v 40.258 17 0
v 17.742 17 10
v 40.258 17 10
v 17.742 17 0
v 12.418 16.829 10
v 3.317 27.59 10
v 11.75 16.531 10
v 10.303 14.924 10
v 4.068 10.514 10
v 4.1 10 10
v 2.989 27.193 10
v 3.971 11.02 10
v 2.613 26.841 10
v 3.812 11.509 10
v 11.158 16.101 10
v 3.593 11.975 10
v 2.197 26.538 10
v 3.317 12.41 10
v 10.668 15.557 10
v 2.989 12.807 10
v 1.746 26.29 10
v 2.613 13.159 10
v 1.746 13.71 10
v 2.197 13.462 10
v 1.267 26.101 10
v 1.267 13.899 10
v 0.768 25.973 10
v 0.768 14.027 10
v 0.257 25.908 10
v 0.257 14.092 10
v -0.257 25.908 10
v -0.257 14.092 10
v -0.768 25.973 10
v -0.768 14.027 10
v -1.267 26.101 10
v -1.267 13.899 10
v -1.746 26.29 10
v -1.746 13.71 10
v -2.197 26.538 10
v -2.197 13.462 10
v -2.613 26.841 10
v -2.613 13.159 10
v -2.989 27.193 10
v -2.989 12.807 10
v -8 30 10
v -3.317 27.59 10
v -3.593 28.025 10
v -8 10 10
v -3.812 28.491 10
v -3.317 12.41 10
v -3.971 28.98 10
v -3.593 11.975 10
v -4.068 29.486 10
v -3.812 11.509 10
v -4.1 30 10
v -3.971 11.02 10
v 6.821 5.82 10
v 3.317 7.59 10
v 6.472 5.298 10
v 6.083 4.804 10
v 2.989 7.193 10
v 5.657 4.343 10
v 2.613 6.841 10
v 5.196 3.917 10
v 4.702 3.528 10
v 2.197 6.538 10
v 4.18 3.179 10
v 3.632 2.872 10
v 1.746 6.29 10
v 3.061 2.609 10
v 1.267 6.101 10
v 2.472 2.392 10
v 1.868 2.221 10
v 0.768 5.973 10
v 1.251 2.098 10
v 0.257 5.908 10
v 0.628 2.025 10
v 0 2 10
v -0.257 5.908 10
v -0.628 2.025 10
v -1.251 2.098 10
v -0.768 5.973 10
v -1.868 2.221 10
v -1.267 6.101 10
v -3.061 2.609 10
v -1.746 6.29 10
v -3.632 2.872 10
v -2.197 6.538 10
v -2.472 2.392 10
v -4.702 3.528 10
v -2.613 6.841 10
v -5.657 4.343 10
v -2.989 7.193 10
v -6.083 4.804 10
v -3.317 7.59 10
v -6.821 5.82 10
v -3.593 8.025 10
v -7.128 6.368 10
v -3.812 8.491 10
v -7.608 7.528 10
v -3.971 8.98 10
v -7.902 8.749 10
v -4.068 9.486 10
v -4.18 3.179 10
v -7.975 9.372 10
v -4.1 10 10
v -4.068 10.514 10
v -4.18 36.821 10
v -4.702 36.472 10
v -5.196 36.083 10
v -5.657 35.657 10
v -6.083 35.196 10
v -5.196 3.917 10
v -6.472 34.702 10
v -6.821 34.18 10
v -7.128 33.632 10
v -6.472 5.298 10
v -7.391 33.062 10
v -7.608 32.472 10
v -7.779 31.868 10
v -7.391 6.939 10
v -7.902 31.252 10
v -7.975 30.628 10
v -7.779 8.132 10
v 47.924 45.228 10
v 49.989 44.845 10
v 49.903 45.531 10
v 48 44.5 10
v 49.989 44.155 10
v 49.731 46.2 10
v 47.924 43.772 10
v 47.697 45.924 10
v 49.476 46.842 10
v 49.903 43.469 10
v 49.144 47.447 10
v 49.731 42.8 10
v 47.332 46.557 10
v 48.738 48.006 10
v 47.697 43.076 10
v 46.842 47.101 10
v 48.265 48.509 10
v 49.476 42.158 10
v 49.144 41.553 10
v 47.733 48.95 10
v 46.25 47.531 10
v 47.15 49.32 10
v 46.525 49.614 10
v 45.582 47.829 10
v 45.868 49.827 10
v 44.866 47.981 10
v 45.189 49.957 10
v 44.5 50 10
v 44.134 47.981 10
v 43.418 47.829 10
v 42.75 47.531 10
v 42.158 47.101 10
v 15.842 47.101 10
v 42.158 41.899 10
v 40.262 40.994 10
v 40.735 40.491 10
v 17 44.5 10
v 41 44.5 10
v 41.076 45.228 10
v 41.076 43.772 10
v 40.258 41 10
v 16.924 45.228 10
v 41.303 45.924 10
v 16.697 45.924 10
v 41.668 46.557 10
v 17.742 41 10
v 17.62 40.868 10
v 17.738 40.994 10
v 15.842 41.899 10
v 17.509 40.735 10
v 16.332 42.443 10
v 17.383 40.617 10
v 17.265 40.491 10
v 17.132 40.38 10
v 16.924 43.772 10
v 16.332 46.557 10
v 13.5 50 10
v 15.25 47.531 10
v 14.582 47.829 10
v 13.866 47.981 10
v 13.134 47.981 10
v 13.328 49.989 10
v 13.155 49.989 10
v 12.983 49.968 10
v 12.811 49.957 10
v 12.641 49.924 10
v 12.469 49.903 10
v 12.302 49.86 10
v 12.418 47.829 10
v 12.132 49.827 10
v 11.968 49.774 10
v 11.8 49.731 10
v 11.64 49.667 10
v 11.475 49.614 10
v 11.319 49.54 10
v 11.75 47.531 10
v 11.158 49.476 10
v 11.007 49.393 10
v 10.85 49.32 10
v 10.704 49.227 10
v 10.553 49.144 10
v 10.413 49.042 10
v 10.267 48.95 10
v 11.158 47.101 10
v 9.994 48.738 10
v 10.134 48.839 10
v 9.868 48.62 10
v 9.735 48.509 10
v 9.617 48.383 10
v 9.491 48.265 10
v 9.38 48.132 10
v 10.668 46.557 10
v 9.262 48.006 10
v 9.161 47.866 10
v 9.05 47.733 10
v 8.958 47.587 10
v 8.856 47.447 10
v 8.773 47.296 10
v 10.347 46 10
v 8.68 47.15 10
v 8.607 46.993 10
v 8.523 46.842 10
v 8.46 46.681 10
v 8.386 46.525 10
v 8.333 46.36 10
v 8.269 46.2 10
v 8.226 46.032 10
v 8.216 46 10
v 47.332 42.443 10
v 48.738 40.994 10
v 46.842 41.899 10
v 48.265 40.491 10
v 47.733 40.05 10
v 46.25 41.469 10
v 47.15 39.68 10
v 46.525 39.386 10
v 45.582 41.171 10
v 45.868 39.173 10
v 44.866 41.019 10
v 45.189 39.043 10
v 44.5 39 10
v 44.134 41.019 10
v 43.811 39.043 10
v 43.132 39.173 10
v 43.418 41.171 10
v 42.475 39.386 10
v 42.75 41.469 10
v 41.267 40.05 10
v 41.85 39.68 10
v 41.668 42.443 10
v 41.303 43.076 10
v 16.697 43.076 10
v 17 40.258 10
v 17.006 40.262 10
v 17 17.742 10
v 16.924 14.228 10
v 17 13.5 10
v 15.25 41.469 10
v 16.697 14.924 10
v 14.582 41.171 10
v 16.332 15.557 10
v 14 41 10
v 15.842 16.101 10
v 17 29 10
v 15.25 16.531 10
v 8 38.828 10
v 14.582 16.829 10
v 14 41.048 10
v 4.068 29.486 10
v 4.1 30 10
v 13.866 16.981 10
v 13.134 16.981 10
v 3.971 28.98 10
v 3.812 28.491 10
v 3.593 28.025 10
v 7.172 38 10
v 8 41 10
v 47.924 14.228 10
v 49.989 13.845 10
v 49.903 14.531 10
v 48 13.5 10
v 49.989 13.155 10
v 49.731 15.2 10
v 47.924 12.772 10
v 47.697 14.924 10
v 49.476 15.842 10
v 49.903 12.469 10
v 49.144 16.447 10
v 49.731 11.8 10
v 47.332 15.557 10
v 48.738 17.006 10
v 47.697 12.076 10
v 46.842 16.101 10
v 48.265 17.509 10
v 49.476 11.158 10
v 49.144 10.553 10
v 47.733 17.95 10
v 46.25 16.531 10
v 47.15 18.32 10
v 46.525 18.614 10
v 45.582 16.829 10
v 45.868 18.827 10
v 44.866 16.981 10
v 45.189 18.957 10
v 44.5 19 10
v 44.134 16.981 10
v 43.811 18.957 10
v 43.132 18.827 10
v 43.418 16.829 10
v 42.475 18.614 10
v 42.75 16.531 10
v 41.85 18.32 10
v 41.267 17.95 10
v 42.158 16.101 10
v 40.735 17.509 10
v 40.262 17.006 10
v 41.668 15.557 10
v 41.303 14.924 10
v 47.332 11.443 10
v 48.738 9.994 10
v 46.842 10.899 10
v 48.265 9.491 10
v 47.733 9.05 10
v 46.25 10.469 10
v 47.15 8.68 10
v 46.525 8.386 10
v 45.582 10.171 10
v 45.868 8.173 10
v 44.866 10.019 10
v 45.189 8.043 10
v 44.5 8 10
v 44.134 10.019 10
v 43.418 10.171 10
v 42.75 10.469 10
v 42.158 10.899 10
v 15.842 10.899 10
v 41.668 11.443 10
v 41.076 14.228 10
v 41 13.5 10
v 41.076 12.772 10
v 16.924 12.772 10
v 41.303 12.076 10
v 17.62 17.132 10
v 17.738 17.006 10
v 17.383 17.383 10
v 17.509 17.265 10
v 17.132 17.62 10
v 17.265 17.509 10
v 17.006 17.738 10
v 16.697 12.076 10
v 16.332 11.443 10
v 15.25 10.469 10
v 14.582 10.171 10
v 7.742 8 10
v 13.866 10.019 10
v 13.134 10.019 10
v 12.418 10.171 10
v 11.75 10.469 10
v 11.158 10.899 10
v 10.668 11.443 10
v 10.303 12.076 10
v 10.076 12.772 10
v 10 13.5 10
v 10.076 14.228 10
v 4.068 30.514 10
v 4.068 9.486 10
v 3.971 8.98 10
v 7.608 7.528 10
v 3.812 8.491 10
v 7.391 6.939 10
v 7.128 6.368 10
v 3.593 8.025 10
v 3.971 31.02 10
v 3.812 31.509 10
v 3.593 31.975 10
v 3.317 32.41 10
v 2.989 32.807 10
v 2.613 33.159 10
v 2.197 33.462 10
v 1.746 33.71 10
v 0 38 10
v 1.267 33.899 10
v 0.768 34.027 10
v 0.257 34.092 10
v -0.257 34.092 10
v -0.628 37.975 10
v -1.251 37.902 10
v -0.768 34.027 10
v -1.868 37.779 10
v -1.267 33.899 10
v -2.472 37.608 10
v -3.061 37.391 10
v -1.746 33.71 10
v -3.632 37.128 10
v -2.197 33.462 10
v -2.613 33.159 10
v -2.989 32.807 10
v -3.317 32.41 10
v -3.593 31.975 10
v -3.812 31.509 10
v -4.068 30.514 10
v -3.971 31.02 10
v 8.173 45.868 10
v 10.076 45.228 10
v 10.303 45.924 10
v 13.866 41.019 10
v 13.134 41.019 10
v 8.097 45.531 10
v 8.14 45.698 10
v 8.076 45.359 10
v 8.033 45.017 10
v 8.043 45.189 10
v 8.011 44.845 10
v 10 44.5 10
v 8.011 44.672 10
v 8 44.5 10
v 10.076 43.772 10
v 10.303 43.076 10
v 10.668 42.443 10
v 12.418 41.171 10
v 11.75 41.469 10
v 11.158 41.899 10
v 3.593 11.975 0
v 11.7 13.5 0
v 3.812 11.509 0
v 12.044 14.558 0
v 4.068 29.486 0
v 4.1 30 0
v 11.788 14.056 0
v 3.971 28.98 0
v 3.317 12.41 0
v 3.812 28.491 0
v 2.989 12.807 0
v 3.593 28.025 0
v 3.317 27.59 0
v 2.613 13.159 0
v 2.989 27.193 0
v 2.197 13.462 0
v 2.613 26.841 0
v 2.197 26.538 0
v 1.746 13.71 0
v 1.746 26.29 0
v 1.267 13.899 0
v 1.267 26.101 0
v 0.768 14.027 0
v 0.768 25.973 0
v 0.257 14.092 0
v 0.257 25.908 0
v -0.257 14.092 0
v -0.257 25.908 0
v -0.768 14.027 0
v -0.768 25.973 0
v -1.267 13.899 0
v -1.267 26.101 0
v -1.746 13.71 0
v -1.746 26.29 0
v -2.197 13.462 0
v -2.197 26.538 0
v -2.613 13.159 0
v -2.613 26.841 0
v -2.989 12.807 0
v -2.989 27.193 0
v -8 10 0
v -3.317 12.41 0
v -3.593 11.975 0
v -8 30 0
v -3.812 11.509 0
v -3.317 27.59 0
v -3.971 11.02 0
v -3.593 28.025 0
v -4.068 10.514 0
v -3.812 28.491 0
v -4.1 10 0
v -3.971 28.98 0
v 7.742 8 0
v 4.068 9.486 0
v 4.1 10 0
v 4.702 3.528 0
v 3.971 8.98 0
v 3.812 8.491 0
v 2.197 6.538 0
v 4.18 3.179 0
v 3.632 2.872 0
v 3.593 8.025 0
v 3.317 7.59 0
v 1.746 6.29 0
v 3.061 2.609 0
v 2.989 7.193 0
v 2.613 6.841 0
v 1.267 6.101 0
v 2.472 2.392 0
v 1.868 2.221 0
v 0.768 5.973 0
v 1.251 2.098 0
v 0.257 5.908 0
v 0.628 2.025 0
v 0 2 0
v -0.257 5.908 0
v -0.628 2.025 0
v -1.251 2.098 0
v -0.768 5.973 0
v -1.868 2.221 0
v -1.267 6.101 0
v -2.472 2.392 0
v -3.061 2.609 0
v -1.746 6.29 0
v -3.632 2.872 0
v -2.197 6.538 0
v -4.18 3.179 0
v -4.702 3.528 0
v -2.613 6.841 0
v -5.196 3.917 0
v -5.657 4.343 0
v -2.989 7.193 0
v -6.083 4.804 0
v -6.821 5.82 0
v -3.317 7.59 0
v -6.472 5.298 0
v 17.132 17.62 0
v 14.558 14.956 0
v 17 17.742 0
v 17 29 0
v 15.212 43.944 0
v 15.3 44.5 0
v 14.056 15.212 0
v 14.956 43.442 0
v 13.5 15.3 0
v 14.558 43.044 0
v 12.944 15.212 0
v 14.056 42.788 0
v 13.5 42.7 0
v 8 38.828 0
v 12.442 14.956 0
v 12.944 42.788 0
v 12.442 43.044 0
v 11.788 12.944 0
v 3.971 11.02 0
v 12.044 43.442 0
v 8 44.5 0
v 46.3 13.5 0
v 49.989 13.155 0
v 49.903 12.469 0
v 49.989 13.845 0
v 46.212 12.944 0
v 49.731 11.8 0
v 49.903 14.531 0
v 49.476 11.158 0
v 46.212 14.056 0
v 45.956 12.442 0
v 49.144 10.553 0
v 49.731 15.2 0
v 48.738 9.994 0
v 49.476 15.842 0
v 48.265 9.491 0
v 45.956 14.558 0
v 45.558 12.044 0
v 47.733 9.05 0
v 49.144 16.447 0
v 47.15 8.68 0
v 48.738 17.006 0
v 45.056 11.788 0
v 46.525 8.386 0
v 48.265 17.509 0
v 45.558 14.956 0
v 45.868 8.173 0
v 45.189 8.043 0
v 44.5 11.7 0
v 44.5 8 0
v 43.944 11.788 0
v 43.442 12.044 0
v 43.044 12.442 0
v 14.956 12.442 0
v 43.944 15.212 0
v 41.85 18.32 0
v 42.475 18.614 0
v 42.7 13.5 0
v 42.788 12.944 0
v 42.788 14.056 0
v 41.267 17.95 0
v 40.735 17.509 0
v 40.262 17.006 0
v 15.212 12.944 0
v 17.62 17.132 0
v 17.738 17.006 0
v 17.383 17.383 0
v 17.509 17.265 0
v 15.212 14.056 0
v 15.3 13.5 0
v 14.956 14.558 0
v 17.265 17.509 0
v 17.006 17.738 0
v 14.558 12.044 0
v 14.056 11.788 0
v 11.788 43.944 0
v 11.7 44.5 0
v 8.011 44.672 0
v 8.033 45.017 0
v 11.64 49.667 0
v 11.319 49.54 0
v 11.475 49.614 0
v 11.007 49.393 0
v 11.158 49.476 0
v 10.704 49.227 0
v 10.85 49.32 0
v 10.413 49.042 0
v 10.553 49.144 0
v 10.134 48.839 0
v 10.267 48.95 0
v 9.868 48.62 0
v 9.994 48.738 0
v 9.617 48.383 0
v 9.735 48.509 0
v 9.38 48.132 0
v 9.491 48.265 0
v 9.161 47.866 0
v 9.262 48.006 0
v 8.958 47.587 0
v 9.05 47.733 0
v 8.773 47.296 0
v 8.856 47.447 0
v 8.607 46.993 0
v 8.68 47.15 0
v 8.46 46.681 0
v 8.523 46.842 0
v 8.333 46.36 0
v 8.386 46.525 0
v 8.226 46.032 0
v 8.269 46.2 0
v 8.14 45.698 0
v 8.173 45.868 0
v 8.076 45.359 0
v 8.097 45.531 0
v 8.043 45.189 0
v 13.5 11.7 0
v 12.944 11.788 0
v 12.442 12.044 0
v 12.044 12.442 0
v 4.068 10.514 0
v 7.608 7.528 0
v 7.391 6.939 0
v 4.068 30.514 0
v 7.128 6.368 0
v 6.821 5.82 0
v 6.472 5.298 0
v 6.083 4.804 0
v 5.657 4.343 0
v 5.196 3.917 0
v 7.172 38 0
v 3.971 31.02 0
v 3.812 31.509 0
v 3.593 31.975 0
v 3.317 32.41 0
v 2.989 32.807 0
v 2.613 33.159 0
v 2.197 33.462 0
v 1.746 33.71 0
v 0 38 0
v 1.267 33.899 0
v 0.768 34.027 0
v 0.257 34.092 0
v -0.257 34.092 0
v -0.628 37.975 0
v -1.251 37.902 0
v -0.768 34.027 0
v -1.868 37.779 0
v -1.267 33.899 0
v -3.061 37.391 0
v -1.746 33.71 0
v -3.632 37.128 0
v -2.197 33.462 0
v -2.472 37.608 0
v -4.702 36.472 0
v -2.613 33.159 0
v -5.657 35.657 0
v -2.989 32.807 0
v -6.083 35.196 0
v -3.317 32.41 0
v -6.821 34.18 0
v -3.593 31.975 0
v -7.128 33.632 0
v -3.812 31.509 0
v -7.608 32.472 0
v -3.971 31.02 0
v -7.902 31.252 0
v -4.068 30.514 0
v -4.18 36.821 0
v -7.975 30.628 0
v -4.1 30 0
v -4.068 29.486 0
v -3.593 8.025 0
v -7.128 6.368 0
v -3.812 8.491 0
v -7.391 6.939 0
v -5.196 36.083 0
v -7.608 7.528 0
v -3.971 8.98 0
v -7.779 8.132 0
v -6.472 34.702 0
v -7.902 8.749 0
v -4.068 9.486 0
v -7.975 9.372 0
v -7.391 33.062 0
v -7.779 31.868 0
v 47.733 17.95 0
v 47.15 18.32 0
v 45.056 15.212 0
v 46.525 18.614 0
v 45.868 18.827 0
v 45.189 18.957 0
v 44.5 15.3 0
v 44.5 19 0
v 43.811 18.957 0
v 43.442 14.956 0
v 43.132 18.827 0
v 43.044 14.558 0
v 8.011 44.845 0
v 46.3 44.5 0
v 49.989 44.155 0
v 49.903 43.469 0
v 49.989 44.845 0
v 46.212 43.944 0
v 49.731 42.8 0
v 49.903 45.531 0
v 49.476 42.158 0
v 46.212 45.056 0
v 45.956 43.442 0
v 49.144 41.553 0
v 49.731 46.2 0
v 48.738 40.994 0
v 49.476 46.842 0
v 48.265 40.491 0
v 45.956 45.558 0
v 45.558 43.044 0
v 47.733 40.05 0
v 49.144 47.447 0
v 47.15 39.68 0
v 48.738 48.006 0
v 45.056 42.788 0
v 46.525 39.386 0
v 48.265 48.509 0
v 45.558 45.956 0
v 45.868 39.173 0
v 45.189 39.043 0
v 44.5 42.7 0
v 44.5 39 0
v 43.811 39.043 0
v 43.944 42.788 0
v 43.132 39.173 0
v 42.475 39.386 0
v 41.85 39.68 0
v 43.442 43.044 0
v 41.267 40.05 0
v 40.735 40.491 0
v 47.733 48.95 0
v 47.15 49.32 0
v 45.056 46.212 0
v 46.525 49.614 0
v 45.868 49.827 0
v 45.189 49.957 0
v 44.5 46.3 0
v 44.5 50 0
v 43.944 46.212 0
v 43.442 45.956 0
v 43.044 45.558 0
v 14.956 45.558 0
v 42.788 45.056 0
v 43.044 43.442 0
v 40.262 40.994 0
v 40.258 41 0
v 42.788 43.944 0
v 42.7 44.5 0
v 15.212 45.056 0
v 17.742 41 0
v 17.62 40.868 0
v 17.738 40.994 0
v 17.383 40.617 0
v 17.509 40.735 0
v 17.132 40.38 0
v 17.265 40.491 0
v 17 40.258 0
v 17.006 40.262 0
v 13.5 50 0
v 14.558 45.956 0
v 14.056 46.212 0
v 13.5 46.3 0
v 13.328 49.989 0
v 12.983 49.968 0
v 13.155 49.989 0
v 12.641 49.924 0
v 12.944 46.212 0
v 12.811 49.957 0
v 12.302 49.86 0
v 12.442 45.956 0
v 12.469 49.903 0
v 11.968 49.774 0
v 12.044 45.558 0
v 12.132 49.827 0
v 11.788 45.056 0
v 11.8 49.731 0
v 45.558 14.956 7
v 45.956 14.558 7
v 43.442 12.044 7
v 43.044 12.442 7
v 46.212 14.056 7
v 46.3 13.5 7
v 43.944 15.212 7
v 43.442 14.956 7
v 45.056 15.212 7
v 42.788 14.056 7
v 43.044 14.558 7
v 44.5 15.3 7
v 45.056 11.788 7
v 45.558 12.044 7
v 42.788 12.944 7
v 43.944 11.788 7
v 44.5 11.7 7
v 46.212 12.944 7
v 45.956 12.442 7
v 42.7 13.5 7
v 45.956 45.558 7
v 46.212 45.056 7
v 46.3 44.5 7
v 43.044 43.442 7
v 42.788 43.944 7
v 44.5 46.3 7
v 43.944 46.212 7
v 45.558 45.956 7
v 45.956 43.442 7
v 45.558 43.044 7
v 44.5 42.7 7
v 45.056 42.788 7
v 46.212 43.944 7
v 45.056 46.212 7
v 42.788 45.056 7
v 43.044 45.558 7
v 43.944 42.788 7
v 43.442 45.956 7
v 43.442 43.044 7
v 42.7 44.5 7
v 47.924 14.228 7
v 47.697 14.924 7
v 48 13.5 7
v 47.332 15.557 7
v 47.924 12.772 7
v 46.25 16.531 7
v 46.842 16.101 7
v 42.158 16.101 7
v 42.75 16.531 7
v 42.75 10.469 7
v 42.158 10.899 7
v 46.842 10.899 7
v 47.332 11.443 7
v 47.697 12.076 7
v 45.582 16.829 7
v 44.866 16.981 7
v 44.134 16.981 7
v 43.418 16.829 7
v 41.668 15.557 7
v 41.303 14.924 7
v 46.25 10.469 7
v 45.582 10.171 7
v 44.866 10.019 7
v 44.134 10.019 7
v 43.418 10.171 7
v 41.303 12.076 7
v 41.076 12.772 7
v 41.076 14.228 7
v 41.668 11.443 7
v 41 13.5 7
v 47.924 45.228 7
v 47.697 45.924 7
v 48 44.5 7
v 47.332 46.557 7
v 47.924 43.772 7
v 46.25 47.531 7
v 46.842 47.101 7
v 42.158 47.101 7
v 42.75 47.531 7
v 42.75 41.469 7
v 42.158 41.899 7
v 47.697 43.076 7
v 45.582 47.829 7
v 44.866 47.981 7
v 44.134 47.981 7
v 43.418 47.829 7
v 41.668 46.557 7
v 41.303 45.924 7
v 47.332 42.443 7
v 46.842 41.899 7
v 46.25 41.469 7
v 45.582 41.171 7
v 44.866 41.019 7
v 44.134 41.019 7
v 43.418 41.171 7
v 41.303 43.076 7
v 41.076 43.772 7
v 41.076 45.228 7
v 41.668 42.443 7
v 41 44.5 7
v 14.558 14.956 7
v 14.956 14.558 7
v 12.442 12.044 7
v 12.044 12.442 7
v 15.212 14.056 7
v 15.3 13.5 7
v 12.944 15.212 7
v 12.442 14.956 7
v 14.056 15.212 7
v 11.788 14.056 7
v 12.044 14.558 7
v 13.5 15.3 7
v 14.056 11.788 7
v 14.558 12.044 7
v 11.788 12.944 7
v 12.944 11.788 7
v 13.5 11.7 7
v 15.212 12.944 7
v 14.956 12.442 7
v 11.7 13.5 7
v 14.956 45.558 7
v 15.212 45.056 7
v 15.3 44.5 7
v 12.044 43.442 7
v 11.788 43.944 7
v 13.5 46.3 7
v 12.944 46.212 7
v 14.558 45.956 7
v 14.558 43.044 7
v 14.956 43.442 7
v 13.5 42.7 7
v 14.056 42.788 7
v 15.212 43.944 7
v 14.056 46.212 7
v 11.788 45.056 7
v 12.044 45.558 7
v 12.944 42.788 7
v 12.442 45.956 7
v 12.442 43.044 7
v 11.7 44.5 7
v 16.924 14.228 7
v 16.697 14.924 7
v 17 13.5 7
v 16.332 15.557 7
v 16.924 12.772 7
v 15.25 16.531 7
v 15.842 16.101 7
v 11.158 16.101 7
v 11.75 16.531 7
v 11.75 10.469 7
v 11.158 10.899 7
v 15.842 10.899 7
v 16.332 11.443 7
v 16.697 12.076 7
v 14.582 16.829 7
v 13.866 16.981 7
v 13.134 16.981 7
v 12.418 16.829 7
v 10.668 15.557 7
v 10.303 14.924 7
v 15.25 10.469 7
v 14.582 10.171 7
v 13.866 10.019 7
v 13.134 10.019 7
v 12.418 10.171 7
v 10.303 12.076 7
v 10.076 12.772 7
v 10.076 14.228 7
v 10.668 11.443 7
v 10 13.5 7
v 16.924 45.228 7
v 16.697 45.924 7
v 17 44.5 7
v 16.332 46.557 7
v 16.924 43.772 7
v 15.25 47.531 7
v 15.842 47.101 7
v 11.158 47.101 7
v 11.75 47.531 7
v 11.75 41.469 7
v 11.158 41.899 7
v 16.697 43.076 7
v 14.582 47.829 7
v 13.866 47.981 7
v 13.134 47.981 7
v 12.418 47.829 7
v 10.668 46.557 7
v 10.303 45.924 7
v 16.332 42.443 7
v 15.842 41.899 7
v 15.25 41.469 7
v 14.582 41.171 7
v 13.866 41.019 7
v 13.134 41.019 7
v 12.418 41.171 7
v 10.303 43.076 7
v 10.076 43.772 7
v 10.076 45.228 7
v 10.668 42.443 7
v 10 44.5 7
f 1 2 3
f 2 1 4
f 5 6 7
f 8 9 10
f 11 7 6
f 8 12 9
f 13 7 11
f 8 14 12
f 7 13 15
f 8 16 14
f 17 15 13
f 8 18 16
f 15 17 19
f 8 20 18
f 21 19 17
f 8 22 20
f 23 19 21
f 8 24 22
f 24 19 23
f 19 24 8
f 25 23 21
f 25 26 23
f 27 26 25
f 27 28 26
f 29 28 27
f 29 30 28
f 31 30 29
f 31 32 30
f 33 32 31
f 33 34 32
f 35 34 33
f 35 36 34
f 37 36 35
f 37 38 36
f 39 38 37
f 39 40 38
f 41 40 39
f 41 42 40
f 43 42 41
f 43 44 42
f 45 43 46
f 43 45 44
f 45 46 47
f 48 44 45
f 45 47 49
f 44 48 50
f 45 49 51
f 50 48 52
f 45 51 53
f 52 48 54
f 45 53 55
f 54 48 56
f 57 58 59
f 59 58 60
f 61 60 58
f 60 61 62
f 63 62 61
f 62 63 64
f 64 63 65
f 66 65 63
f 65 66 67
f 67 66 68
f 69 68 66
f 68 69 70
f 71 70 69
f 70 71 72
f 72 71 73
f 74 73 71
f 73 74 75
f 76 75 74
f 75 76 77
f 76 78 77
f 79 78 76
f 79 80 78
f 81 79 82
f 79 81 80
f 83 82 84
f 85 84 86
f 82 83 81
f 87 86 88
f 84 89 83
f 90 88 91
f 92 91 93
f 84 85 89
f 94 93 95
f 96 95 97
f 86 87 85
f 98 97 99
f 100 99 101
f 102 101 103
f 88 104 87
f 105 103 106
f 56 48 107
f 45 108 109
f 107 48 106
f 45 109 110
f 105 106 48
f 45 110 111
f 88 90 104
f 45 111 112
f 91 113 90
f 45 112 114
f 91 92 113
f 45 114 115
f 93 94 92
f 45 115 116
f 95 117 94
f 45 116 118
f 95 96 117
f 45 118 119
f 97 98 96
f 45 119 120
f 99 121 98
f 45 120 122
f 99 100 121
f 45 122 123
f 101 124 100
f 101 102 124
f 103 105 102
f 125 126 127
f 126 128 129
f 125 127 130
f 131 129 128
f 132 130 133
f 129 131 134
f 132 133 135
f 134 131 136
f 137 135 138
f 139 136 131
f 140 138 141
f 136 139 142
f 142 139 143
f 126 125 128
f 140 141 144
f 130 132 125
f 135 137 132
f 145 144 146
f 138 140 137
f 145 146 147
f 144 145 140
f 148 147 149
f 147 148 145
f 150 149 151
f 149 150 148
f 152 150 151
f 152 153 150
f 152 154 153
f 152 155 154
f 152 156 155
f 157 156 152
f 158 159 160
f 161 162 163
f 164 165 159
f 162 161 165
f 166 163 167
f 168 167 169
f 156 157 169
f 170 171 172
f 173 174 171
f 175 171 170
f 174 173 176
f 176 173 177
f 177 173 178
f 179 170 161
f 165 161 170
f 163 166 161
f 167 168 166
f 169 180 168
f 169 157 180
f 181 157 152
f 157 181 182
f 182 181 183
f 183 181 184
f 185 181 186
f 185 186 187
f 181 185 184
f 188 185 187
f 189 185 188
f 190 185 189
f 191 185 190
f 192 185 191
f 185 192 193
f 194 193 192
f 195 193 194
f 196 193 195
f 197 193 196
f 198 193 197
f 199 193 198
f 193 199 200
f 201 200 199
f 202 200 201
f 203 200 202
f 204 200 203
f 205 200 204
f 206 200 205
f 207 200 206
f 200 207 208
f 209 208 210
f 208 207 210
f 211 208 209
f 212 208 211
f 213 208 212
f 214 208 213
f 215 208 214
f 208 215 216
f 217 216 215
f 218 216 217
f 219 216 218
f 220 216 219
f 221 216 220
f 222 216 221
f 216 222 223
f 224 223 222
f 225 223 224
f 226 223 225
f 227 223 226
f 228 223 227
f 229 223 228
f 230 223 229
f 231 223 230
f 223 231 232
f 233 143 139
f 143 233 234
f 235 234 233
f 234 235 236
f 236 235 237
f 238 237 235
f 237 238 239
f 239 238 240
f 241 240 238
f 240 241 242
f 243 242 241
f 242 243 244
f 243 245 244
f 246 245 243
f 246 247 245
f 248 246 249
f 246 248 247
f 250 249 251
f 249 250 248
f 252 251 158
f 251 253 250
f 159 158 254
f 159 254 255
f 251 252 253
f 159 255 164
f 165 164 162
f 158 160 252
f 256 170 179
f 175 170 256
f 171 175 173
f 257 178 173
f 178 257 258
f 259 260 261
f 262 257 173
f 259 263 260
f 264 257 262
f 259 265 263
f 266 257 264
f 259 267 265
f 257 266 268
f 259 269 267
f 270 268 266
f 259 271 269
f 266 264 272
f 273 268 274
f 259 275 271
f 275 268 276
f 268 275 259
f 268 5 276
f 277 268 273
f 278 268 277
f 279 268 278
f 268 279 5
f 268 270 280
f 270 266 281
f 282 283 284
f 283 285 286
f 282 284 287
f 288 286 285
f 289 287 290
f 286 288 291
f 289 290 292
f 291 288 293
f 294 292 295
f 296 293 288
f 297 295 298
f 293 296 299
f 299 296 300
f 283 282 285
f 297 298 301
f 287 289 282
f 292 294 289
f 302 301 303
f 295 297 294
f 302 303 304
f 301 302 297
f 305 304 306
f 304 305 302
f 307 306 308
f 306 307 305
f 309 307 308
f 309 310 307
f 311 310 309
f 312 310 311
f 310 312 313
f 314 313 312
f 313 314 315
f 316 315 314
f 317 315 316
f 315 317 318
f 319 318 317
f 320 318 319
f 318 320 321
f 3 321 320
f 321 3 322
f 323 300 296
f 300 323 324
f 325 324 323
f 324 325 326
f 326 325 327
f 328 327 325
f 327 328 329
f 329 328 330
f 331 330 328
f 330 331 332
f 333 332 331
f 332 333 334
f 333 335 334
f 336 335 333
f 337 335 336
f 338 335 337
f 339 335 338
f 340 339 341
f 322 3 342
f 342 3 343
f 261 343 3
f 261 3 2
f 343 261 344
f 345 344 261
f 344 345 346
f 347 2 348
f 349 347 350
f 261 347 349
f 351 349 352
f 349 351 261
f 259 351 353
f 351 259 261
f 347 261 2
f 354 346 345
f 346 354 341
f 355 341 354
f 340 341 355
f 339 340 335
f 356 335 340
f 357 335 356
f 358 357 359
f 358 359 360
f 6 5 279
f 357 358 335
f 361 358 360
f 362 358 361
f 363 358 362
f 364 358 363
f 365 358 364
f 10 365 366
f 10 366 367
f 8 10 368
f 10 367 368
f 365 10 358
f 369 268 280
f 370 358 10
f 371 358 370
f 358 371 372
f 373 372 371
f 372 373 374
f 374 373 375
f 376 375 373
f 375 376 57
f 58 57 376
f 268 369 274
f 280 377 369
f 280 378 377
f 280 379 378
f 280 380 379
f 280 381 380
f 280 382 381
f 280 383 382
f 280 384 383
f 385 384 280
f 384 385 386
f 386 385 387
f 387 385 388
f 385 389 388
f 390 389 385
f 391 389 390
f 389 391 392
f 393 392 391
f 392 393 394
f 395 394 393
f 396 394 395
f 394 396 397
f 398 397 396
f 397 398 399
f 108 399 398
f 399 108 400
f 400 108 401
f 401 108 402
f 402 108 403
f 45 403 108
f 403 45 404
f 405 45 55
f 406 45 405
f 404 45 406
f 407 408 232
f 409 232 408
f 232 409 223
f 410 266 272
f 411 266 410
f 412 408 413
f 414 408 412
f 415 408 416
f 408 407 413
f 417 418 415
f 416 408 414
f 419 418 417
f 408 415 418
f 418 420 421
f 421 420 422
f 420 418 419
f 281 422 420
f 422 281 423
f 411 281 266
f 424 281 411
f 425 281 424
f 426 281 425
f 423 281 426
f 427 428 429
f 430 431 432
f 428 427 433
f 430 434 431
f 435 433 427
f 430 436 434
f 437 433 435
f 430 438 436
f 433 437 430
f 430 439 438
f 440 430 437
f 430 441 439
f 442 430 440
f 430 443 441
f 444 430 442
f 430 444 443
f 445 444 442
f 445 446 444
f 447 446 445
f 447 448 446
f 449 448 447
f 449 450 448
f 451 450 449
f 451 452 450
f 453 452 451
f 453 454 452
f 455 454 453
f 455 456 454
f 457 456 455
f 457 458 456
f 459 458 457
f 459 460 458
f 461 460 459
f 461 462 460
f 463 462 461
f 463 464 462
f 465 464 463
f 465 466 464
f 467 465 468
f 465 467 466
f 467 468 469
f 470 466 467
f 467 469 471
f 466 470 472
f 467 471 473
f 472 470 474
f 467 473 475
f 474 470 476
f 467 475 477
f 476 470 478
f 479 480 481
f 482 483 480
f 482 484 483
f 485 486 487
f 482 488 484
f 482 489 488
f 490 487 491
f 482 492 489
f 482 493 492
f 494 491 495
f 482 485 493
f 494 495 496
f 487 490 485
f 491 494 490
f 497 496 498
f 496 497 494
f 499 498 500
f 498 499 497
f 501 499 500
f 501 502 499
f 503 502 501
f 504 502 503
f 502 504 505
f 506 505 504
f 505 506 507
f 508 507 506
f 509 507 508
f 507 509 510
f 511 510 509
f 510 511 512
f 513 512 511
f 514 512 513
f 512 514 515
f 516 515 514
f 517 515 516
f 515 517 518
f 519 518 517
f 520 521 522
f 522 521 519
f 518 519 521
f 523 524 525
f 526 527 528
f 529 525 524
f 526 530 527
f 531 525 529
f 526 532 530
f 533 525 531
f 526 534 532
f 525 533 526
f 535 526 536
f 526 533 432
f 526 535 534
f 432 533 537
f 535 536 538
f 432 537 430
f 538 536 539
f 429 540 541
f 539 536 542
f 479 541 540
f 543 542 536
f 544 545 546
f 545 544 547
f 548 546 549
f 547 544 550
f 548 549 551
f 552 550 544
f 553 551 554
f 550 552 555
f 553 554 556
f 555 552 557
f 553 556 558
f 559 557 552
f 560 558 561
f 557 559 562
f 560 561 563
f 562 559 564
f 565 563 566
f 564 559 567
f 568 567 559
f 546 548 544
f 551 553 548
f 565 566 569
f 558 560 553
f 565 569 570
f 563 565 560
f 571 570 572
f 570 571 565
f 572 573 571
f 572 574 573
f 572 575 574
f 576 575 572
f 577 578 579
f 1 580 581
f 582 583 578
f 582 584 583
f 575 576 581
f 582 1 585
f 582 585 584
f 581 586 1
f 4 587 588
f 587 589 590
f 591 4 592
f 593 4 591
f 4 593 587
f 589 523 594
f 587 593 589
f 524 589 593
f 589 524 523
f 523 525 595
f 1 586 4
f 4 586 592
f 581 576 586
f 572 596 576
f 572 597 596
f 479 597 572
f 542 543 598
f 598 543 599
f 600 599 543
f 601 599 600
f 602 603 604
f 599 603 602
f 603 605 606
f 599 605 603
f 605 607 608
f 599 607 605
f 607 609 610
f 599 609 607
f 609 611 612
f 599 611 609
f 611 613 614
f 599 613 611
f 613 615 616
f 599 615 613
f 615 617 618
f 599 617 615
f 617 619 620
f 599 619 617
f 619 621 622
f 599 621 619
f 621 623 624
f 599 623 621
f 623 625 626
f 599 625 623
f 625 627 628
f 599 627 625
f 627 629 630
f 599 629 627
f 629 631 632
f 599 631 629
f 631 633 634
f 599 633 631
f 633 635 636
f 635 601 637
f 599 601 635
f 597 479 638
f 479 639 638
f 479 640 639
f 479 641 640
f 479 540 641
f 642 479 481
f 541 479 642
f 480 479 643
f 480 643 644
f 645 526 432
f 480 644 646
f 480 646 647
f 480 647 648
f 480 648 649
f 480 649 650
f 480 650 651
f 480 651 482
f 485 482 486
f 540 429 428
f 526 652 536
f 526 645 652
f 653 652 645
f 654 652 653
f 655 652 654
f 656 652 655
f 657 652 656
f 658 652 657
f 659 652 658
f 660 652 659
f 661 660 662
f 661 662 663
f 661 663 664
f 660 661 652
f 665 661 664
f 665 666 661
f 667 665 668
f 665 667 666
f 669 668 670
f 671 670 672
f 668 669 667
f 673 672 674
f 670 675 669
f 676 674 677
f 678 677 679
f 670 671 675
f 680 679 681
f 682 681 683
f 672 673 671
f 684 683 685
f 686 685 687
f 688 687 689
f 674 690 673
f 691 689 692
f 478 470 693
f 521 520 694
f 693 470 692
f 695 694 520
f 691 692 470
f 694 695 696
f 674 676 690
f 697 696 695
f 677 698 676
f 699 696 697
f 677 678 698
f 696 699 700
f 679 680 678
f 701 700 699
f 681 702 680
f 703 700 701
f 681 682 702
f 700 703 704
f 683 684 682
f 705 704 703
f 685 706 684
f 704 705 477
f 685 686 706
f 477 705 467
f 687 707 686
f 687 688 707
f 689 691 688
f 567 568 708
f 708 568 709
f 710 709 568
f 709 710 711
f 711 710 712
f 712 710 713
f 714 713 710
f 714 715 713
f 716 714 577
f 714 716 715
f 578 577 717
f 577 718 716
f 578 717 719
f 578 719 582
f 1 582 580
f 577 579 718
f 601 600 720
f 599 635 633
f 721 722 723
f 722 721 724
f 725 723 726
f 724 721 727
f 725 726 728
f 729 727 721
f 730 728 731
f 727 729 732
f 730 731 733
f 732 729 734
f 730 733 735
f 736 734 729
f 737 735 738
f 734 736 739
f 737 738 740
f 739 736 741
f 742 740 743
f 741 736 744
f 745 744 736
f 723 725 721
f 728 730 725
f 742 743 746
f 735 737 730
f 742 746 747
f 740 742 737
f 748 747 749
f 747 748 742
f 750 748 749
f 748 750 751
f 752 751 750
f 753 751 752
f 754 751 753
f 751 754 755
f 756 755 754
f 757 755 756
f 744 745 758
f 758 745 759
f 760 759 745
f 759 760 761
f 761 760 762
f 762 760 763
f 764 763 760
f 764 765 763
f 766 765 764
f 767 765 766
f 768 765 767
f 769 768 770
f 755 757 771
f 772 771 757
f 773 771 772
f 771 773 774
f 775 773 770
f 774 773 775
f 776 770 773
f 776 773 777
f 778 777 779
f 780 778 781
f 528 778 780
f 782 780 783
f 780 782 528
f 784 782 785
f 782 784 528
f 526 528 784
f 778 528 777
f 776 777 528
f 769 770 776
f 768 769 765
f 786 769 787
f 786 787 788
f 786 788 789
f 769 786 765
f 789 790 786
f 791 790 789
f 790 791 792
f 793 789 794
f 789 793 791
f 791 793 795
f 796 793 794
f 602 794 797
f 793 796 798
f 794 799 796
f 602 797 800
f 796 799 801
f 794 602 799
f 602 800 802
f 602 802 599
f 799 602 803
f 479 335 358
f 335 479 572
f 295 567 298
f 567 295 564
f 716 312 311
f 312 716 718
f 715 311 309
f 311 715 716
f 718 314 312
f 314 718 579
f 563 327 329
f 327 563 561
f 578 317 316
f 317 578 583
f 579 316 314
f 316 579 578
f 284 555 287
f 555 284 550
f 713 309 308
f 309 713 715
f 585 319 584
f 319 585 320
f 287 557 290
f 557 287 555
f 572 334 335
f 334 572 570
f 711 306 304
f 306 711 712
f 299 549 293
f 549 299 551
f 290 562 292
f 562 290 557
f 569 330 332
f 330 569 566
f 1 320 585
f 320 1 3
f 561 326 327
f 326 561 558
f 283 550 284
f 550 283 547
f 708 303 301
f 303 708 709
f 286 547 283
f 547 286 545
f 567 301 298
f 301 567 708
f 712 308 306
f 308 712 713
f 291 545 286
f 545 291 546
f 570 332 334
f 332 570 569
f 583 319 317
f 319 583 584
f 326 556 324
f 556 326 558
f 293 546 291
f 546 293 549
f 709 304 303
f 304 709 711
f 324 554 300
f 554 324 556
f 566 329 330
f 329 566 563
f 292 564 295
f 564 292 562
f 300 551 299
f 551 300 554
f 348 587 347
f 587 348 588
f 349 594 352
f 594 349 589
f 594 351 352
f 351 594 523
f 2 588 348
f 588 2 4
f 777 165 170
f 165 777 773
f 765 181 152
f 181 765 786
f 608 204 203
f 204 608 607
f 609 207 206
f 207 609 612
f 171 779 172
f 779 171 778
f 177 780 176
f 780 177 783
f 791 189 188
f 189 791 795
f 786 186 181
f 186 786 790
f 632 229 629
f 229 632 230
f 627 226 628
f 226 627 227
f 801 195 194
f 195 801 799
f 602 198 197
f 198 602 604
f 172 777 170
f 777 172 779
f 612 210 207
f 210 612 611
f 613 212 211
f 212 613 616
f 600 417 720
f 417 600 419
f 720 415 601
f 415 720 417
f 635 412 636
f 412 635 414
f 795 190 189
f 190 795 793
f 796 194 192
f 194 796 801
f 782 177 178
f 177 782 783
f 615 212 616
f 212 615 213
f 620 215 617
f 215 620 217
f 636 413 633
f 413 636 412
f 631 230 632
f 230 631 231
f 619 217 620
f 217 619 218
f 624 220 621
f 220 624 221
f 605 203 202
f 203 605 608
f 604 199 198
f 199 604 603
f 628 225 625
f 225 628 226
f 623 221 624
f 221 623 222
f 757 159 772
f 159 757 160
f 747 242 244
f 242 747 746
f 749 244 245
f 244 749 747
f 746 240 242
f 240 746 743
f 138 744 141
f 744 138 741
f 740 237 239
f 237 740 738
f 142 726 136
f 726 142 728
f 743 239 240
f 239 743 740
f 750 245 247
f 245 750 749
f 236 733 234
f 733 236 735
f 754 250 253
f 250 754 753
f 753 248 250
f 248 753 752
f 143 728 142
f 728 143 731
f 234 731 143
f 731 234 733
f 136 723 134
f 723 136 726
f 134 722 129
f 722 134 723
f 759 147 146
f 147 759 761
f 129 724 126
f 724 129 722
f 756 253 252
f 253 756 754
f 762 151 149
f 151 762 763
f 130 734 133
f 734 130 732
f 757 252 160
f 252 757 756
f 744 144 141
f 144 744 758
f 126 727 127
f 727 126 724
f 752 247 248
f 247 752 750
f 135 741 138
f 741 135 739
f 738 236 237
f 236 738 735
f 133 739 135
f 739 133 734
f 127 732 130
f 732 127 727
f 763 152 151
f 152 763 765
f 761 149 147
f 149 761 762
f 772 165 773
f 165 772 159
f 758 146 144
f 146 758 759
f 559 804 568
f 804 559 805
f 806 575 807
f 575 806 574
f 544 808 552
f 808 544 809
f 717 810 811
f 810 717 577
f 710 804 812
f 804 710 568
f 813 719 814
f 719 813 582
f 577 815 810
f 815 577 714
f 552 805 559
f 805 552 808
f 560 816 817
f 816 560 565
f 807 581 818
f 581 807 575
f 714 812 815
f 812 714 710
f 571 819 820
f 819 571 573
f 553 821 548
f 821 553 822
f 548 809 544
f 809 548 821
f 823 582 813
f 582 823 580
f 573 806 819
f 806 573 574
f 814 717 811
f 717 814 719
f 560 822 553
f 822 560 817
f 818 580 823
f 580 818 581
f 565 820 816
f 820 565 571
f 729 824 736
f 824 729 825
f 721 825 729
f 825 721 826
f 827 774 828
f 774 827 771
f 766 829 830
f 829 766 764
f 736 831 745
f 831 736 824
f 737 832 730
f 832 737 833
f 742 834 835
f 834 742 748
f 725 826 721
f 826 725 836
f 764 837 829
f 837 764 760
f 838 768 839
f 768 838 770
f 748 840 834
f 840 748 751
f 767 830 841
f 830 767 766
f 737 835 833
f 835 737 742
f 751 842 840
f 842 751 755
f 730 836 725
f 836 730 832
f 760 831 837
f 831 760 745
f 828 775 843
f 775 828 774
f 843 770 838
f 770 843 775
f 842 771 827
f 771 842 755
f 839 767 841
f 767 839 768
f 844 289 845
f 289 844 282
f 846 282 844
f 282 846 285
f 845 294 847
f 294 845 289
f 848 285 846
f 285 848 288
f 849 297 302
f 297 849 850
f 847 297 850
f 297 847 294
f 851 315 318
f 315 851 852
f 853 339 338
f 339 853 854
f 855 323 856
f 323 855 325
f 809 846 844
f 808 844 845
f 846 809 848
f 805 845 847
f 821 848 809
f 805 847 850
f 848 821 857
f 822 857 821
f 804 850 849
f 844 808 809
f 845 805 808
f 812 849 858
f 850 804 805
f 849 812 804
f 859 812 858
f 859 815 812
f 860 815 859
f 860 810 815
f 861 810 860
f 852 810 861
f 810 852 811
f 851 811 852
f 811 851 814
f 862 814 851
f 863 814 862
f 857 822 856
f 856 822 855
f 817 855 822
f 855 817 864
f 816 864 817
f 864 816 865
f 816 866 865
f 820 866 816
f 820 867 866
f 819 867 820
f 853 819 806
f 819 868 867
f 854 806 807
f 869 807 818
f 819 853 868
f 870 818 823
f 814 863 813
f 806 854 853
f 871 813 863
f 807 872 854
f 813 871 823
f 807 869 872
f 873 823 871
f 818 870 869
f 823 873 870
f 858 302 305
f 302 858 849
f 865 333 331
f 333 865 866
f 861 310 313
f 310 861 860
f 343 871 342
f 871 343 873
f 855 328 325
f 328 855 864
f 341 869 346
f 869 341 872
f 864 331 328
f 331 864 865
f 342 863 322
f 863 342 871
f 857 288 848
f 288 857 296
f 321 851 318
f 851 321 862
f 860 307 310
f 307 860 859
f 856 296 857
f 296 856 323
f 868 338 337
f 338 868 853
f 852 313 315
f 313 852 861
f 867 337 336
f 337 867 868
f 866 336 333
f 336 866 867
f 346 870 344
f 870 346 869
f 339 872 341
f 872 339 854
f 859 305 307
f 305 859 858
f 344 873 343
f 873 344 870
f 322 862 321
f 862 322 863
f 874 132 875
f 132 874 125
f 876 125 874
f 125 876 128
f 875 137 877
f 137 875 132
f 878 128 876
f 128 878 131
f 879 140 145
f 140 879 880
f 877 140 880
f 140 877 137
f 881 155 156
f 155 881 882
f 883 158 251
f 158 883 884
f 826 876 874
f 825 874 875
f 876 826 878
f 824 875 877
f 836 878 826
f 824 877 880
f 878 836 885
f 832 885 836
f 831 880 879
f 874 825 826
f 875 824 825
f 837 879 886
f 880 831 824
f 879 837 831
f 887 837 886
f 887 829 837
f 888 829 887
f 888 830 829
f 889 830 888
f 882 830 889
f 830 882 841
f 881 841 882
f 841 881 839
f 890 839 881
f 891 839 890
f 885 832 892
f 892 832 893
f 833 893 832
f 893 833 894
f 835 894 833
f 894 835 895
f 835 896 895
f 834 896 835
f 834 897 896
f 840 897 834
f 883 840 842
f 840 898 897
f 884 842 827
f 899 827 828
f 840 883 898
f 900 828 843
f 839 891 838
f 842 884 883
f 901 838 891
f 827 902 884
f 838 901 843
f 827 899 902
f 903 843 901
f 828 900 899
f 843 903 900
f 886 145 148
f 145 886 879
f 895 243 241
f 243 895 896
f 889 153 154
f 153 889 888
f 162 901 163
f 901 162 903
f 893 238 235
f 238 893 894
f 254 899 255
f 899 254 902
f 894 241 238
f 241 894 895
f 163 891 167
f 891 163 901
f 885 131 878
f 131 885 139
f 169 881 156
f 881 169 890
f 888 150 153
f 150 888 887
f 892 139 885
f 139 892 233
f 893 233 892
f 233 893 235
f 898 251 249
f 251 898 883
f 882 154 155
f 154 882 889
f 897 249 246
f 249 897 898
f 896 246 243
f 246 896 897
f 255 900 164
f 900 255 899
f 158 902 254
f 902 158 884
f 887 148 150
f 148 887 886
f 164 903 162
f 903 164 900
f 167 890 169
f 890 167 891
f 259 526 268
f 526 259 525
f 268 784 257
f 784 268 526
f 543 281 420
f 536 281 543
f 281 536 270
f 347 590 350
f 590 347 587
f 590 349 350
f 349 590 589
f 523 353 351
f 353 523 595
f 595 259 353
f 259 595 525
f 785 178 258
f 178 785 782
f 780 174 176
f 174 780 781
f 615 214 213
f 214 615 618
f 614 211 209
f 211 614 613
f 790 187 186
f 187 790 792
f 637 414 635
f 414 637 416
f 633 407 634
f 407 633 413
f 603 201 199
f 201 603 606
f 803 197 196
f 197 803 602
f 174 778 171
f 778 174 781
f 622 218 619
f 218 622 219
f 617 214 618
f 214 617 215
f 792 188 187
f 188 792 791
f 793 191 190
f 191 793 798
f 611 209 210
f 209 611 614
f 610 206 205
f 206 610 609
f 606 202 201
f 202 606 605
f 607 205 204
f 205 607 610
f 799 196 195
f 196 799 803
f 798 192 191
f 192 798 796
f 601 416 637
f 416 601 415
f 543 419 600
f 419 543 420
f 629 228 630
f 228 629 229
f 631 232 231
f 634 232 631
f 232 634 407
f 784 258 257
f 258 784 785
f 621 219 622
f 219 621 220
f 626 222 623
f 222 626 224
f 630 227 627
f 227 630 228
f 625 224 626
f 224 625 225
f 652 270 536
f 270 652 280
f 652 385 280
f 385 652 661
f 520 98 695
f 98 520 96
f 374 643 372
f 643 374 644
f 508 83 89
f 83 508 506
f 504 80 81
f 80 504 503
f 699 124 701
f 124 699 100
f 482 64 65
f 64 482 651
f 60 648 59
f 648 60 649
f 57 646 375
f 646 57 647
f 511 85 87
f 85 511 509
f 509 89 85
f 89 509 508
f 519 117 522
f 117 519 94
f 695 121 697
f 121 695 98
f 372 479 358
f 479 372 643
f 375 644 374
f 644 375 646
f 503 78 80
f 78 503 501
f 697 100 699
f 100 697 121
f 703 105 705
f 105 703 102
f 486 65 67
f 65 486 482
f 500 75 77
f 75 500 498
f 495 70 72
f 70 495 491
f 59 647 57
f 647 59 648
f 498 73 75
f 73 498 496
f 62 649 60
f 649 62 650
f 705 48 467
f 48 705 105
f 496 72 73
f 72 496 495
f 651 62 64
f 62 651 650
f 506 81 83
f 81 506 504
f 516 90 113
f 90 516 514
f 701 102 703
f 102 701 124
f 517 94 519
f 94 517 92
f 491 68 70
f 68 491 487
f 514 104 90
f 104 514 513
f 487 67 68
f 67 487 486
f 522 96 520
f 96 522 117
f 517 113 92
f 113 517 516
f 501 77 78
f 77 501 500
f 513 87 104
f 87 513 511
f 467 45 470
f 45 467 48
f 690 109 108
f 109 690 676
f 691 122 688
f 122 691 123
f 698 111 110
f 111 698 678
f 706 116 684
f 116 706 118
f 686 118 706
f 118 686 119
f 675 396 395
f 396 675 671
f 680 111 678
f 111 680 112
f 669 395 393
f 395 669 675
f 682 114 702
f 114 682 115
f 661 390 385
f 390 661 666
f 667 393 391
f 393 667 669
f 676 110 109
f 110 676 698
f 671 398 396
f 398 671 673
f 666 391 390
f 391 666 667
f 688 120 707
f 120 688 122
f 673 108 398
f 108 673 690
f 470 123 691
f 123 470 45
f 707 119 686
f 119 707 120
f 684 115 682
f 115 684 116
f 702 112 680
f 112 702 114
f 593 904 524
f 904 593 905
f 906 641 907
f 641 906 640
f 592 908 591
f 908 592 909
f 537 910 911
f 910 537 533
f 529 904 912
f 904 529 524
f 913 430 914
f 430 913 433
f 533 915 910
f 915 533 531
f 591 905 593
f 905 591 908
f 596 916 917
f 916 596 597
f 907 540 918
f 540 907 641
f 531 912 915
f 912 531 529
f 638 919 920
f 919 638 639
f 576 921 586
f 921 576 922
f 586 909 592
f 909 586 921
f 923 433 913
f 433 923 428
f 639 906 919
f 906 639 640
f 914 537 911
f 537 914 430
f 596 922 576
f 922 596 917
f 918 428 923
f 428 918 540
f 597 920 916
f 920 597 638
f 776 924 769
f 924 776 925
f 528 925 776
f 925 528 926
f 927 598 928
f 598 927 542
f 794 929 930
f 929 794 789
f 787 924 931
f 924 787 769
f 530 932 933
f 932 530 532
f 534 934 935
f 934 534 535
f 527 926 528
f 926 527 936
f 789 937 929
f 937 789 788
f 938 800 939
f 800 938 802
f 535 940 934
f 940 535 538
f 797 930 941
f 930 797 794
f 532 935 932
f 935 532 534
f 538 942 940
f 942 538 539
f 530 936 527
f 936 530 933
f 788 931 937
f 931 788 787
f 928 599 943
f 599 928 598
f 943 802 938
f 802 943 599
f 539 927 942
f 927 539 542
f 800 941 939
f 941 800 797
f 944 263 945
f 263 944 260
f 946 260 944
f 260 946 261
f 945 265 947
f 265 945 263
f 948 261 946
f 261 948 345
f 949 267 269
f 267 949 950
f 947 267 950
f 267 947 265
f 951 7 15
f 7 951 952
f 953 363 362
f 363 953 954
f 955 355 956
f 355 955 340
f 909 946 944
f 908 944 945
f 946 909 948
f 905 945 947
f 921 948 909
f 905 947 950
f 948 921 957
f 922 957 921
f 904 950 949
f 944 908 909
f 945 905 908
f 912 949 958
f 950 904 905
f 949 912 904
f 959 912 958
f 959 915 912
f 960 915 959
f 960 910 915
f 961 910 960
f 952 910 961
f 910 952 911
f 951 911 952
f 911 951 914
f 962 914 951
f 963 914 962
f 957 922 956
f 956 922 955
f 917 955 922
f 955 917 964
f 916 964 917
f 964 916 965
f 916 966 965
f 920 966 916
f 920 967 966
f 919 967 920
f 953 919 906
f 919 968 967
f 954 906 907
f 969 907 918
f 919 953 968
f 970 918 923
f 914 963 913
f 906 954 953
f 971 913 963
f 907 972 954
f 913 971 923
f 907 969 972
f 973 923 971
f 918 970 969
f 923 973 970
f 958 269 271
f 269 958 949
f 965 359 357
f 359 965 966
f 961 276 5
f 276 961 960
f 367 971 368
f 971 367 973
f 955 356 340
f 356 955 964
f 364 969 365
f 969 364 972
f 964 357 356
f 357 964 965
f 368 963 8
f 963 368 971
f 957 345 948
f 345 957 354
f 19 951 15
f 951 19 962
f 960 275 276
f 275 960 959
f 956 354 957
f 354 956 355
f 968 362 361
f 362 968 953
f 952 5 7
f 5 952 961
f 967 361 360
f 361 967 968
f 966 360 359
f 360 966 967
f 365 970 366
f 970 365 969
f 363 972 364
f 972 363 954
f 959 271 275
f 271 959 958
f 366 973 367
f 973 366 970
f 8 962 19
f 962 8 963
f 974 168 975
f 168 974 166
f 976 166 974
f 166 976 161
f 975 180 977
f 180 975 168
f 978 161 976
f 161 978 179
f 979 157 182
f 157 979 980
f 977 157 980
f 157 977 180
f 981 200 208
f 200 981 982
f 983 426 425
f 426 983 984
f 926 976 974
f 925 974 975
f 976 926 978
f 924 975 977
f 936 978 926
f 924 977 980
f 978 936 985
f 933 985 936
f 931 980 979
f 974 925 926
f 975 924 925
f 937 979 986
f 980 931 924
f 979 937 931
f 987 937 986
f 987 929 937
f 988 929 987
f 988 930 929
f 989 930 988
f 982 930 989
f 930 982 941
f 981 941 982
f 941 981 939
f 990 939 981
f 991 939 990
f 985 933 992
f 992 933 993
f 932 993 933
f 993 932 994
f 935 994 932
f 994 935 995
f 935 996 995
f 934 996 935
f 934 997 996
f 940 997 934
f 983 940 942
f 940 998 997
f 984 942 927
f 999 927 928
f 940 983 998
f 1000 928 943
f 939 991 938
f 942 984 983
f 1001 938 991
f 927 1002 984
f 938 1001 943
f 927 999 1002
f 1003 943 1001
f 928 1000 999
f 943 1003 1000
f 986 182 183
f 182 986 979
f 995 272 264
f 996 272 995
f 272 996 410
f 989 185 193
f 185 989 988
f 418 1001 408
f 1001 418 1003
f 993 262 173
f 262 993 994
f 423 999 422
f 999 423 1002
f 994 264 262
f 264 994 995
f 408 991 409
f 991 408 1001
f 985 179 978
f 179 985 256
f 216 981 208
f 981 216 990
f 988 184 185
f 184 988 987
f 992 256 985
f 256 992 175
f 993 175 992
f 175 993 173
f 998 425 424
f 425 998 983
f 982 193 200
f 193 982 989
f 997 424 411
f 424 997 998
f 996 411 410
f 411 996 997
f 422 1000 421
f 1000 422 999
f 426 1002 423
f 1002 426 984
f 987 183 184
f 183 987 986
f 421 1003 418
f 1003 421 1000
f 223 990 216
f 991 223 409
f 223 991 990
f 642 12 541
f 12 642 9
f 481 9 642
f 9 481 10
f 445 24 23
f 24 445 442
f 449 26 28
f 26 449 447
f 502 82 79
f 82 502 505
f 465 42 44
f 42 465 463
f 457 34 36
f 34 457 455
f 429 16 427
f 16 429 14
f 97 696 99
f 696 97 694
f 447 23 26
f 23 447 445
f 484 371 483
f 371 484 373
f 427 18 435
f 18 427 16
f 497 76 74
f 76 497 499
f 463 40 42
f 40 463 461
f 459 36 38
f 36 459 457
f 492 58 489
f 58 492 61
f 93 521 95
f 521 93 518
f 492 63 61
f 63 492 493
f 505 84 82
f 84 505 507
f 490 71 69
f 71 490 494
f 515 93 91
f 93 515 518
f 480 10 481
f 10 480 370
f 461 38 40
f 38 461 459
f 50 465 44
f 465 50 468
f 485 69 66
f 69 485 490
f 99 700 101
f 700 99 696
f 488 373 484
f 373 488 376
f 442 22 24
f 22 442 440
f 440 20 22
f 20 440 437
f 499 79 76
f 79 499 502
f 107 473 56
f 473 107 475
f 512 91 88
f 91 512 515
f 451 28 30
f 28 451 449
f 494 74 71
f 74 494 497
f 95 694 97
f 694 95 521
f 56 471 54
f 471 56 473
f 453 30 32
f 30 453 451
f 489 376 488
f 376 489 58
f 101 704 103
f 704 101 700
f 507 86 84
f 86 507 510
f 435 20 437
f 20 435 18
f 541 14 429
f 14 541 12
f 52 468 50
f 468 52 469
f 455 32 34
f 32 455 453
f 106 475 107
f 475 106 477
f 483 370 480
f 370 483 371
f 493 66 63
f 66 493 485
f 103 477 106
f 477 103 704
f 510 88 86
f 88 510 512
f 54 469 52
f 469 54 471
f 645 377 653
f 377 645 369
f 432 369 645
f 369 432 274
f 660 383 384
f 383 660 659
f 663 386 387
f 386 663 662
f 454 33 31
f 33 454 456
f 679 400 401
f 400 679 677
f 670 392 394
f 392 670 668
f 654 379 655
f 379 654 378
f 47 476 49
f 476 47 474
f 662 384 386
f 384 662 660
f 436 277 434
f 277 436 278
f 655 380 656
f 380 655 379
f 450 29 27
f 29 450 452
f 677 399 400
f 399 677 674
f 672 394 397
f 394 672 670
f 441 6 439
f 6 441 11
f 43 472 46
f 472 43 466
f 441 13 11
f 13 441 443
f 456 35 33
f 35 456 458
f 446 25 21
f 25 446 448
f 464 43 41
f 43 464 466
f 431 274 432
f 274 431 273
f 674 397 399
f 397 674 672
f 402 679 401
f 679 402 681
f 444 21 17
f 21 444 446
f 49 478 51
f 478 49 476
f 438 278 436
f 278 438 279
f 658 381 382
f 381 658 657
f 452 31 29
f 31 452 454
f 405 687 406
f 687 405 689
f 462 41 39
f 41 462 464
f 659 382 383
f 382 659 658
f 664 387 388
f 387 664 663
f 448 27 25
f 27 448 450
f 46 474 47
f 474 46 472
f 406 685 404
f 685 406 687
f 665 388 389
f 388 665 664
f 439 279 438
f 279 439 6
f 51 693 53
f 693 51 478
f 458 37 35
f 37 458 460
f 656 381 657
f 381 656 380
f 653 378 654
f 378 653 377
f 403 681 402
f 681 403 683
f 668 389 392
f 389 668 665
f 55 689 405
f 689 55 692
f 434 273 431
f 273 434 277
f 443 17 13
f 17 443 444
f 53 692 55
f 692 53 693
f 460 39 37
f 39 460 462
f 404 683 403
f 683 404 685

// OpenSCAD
// PRUSA iteration3
// Y motor mount
// GNU GPL v3
// Josef Průša <iam@josefprusa.cz> and contributors
// http://www.reprap.org/wiki/Prusa_Mendel
// http://prusamendel.org

//include <configuration.scad>

renderEndstopMount = false;

module motorMountArm()
{
   translate(v = [-21+4.5,0,5]) cube(size = [9,31,10], center=true);
   translate(v = [-15.5,-15.5,0]) cylinder(h = 10, r=5.5, $fn=50);
   translate(v = [-15.5,+15.5,0]) cylinder(h = 10, r=5.5, $fn=50);
}

// Pull Prusa's motor mount into a module so it's easier to work with in isolation
module motorMount()
{
// Motor holding part
   translate(v = [29,-21+50,0])
   {
      translate(v = [-21+4.5,0,5]) cube(size = [9,31,10], center=true);
      translate(v = [-15.5,-15.5,0]) cylinder(h = 10, r=5.5, $fn=50);
      translate(v = [-15.5,+15.5,0]) cylinder(h = 10, r=5.5, $fn=50);
      translate([-21,7,0]) rotate([0,0,45]) cube([2, 2, 10]);

      difference()
      {
         {
            union()
            {
               rotate( [0, 0, 90] ) 
               {
                  motorMountArm();
               }
               rotate( [0, 0, -90] ) 
               {
                  motorMountArm();
               }
            }
         }
         {
            translate( [31, 0, 0] )
            {
               boltHoles();
            }
         }
      }

      //end stop
      // My printer's end-stop is on the opposite end of the motor mount
      if( renderEndstopMount )
      {
         translate(v = [-10.5,+15.5,0]) cylinder(h = 10, r=5.5, $fn=50);
         translate([-12,0,0]) cube([7, 15, 10]);
         translate([-16,16,0]) cube([6, 5, 10]);
         translate([-21+6,8,0]) cube([12-2, 5, 28]);
         translate([-21+6-2,8-5,0]) cube([4, 10, 28]);
         translate([-21+9.5-2,7,0]) rotate([0,0,45]) cube([2, 2, 28]);    
      }

   // Joins motor holder and rod plate
   translate(v = [-29,-21,0]) cube(size = [14,30,10]);
 }
}

module y_motor_base(){
 
motorMount();

 // Front holding part
 translate(v = [0,10,0]) cylinder(h = 10, r=8, $fn=80);
 translate(v = [0,20,5])cube(size = [16,20,10], center=true);	
 translate(v = [0,30,0])cylinder(h = 10, r=8, $fn=80);
}

module boltHoles()
{
   // Screw head holes
  translate(v = [-15.5,-15.5,-1]) cylinder(h = 10, r=1.8, $fn=20);
  translate(v = [-15.5,+15.5,-1]) cylinder(h = 10, r=1.8, $fn=20);
  // Screw holes
  translate(v = [-15.5,-15.5,7]) cylinder(h = 7, r=3.5, $fn=30);
  translate(v = [-15.5,+15.5,7]) cylinder(h = 25, r=3.5, $fn=30);
}

module y_motor_holes(){
 translate(v = [29,-21+50,0]){
  boltHoles();
 }
 translate(v = [0,10,-1]) cylinder(h = 12, r=4.1, $fn=50);	
 translate(v = [0,30,-1]) cylinder(h = 12, r=4.1, $fn=50);
 
 //endstop
    translate([25,29,0])  cylinder(h = 29, r=8, $fn=20); 
   
    translate([18,45,15]) rotate([90,0,0]) cylinder(h = 10, r=0.8, $fn=20);
    translate([18,42.2,15]) rotate([90,0,0]) cylinder(h = 2, r1=1.2, r2=0.8, $fn=20);
 
    translate([18,45,24.5]) rotate([90,0,0]) cylinder(h = 10, r=0.8, $fn=20);
    translate([18,42.2,24.5]) rotate([90,0,0]) cylinder(h = 2, r1=1.2, r2=0.8, $fn=20);
   
    // endstop corner cutout
    translate([-5-2,30,28]) rotate([0,45,0]) cube([15, 19, 15]);	
    translate([-1,41,10])  cube([15, 5, 19]);	
    translate([27,33,0]) rotate([0,0,45]) cube([5, 5, 28]);	
    translate([12-2,28,10.01]) rotate([0,0,45]) cube([5, 5, 28]);
    
    // This cuts through the extended Y motor mount arm
    //translate([19,32,0]) rotate([0,30,0]) cube([8, 20, 18]);	
    translate([24.5-2,32,17]) rotate([0,45,0]) cube([2, 20, 2]);	
    
    translate([23-2,32,29]) rotate([0,45,0]) cube([5, 20, 5]);	
}




//#translate([18,40,10]) cube([8, 5, 5]);	

// Final part
module y_motor(){
 difference(){
  y_motor_base();
  y_motor_holes();
 }
}

y_motor();
